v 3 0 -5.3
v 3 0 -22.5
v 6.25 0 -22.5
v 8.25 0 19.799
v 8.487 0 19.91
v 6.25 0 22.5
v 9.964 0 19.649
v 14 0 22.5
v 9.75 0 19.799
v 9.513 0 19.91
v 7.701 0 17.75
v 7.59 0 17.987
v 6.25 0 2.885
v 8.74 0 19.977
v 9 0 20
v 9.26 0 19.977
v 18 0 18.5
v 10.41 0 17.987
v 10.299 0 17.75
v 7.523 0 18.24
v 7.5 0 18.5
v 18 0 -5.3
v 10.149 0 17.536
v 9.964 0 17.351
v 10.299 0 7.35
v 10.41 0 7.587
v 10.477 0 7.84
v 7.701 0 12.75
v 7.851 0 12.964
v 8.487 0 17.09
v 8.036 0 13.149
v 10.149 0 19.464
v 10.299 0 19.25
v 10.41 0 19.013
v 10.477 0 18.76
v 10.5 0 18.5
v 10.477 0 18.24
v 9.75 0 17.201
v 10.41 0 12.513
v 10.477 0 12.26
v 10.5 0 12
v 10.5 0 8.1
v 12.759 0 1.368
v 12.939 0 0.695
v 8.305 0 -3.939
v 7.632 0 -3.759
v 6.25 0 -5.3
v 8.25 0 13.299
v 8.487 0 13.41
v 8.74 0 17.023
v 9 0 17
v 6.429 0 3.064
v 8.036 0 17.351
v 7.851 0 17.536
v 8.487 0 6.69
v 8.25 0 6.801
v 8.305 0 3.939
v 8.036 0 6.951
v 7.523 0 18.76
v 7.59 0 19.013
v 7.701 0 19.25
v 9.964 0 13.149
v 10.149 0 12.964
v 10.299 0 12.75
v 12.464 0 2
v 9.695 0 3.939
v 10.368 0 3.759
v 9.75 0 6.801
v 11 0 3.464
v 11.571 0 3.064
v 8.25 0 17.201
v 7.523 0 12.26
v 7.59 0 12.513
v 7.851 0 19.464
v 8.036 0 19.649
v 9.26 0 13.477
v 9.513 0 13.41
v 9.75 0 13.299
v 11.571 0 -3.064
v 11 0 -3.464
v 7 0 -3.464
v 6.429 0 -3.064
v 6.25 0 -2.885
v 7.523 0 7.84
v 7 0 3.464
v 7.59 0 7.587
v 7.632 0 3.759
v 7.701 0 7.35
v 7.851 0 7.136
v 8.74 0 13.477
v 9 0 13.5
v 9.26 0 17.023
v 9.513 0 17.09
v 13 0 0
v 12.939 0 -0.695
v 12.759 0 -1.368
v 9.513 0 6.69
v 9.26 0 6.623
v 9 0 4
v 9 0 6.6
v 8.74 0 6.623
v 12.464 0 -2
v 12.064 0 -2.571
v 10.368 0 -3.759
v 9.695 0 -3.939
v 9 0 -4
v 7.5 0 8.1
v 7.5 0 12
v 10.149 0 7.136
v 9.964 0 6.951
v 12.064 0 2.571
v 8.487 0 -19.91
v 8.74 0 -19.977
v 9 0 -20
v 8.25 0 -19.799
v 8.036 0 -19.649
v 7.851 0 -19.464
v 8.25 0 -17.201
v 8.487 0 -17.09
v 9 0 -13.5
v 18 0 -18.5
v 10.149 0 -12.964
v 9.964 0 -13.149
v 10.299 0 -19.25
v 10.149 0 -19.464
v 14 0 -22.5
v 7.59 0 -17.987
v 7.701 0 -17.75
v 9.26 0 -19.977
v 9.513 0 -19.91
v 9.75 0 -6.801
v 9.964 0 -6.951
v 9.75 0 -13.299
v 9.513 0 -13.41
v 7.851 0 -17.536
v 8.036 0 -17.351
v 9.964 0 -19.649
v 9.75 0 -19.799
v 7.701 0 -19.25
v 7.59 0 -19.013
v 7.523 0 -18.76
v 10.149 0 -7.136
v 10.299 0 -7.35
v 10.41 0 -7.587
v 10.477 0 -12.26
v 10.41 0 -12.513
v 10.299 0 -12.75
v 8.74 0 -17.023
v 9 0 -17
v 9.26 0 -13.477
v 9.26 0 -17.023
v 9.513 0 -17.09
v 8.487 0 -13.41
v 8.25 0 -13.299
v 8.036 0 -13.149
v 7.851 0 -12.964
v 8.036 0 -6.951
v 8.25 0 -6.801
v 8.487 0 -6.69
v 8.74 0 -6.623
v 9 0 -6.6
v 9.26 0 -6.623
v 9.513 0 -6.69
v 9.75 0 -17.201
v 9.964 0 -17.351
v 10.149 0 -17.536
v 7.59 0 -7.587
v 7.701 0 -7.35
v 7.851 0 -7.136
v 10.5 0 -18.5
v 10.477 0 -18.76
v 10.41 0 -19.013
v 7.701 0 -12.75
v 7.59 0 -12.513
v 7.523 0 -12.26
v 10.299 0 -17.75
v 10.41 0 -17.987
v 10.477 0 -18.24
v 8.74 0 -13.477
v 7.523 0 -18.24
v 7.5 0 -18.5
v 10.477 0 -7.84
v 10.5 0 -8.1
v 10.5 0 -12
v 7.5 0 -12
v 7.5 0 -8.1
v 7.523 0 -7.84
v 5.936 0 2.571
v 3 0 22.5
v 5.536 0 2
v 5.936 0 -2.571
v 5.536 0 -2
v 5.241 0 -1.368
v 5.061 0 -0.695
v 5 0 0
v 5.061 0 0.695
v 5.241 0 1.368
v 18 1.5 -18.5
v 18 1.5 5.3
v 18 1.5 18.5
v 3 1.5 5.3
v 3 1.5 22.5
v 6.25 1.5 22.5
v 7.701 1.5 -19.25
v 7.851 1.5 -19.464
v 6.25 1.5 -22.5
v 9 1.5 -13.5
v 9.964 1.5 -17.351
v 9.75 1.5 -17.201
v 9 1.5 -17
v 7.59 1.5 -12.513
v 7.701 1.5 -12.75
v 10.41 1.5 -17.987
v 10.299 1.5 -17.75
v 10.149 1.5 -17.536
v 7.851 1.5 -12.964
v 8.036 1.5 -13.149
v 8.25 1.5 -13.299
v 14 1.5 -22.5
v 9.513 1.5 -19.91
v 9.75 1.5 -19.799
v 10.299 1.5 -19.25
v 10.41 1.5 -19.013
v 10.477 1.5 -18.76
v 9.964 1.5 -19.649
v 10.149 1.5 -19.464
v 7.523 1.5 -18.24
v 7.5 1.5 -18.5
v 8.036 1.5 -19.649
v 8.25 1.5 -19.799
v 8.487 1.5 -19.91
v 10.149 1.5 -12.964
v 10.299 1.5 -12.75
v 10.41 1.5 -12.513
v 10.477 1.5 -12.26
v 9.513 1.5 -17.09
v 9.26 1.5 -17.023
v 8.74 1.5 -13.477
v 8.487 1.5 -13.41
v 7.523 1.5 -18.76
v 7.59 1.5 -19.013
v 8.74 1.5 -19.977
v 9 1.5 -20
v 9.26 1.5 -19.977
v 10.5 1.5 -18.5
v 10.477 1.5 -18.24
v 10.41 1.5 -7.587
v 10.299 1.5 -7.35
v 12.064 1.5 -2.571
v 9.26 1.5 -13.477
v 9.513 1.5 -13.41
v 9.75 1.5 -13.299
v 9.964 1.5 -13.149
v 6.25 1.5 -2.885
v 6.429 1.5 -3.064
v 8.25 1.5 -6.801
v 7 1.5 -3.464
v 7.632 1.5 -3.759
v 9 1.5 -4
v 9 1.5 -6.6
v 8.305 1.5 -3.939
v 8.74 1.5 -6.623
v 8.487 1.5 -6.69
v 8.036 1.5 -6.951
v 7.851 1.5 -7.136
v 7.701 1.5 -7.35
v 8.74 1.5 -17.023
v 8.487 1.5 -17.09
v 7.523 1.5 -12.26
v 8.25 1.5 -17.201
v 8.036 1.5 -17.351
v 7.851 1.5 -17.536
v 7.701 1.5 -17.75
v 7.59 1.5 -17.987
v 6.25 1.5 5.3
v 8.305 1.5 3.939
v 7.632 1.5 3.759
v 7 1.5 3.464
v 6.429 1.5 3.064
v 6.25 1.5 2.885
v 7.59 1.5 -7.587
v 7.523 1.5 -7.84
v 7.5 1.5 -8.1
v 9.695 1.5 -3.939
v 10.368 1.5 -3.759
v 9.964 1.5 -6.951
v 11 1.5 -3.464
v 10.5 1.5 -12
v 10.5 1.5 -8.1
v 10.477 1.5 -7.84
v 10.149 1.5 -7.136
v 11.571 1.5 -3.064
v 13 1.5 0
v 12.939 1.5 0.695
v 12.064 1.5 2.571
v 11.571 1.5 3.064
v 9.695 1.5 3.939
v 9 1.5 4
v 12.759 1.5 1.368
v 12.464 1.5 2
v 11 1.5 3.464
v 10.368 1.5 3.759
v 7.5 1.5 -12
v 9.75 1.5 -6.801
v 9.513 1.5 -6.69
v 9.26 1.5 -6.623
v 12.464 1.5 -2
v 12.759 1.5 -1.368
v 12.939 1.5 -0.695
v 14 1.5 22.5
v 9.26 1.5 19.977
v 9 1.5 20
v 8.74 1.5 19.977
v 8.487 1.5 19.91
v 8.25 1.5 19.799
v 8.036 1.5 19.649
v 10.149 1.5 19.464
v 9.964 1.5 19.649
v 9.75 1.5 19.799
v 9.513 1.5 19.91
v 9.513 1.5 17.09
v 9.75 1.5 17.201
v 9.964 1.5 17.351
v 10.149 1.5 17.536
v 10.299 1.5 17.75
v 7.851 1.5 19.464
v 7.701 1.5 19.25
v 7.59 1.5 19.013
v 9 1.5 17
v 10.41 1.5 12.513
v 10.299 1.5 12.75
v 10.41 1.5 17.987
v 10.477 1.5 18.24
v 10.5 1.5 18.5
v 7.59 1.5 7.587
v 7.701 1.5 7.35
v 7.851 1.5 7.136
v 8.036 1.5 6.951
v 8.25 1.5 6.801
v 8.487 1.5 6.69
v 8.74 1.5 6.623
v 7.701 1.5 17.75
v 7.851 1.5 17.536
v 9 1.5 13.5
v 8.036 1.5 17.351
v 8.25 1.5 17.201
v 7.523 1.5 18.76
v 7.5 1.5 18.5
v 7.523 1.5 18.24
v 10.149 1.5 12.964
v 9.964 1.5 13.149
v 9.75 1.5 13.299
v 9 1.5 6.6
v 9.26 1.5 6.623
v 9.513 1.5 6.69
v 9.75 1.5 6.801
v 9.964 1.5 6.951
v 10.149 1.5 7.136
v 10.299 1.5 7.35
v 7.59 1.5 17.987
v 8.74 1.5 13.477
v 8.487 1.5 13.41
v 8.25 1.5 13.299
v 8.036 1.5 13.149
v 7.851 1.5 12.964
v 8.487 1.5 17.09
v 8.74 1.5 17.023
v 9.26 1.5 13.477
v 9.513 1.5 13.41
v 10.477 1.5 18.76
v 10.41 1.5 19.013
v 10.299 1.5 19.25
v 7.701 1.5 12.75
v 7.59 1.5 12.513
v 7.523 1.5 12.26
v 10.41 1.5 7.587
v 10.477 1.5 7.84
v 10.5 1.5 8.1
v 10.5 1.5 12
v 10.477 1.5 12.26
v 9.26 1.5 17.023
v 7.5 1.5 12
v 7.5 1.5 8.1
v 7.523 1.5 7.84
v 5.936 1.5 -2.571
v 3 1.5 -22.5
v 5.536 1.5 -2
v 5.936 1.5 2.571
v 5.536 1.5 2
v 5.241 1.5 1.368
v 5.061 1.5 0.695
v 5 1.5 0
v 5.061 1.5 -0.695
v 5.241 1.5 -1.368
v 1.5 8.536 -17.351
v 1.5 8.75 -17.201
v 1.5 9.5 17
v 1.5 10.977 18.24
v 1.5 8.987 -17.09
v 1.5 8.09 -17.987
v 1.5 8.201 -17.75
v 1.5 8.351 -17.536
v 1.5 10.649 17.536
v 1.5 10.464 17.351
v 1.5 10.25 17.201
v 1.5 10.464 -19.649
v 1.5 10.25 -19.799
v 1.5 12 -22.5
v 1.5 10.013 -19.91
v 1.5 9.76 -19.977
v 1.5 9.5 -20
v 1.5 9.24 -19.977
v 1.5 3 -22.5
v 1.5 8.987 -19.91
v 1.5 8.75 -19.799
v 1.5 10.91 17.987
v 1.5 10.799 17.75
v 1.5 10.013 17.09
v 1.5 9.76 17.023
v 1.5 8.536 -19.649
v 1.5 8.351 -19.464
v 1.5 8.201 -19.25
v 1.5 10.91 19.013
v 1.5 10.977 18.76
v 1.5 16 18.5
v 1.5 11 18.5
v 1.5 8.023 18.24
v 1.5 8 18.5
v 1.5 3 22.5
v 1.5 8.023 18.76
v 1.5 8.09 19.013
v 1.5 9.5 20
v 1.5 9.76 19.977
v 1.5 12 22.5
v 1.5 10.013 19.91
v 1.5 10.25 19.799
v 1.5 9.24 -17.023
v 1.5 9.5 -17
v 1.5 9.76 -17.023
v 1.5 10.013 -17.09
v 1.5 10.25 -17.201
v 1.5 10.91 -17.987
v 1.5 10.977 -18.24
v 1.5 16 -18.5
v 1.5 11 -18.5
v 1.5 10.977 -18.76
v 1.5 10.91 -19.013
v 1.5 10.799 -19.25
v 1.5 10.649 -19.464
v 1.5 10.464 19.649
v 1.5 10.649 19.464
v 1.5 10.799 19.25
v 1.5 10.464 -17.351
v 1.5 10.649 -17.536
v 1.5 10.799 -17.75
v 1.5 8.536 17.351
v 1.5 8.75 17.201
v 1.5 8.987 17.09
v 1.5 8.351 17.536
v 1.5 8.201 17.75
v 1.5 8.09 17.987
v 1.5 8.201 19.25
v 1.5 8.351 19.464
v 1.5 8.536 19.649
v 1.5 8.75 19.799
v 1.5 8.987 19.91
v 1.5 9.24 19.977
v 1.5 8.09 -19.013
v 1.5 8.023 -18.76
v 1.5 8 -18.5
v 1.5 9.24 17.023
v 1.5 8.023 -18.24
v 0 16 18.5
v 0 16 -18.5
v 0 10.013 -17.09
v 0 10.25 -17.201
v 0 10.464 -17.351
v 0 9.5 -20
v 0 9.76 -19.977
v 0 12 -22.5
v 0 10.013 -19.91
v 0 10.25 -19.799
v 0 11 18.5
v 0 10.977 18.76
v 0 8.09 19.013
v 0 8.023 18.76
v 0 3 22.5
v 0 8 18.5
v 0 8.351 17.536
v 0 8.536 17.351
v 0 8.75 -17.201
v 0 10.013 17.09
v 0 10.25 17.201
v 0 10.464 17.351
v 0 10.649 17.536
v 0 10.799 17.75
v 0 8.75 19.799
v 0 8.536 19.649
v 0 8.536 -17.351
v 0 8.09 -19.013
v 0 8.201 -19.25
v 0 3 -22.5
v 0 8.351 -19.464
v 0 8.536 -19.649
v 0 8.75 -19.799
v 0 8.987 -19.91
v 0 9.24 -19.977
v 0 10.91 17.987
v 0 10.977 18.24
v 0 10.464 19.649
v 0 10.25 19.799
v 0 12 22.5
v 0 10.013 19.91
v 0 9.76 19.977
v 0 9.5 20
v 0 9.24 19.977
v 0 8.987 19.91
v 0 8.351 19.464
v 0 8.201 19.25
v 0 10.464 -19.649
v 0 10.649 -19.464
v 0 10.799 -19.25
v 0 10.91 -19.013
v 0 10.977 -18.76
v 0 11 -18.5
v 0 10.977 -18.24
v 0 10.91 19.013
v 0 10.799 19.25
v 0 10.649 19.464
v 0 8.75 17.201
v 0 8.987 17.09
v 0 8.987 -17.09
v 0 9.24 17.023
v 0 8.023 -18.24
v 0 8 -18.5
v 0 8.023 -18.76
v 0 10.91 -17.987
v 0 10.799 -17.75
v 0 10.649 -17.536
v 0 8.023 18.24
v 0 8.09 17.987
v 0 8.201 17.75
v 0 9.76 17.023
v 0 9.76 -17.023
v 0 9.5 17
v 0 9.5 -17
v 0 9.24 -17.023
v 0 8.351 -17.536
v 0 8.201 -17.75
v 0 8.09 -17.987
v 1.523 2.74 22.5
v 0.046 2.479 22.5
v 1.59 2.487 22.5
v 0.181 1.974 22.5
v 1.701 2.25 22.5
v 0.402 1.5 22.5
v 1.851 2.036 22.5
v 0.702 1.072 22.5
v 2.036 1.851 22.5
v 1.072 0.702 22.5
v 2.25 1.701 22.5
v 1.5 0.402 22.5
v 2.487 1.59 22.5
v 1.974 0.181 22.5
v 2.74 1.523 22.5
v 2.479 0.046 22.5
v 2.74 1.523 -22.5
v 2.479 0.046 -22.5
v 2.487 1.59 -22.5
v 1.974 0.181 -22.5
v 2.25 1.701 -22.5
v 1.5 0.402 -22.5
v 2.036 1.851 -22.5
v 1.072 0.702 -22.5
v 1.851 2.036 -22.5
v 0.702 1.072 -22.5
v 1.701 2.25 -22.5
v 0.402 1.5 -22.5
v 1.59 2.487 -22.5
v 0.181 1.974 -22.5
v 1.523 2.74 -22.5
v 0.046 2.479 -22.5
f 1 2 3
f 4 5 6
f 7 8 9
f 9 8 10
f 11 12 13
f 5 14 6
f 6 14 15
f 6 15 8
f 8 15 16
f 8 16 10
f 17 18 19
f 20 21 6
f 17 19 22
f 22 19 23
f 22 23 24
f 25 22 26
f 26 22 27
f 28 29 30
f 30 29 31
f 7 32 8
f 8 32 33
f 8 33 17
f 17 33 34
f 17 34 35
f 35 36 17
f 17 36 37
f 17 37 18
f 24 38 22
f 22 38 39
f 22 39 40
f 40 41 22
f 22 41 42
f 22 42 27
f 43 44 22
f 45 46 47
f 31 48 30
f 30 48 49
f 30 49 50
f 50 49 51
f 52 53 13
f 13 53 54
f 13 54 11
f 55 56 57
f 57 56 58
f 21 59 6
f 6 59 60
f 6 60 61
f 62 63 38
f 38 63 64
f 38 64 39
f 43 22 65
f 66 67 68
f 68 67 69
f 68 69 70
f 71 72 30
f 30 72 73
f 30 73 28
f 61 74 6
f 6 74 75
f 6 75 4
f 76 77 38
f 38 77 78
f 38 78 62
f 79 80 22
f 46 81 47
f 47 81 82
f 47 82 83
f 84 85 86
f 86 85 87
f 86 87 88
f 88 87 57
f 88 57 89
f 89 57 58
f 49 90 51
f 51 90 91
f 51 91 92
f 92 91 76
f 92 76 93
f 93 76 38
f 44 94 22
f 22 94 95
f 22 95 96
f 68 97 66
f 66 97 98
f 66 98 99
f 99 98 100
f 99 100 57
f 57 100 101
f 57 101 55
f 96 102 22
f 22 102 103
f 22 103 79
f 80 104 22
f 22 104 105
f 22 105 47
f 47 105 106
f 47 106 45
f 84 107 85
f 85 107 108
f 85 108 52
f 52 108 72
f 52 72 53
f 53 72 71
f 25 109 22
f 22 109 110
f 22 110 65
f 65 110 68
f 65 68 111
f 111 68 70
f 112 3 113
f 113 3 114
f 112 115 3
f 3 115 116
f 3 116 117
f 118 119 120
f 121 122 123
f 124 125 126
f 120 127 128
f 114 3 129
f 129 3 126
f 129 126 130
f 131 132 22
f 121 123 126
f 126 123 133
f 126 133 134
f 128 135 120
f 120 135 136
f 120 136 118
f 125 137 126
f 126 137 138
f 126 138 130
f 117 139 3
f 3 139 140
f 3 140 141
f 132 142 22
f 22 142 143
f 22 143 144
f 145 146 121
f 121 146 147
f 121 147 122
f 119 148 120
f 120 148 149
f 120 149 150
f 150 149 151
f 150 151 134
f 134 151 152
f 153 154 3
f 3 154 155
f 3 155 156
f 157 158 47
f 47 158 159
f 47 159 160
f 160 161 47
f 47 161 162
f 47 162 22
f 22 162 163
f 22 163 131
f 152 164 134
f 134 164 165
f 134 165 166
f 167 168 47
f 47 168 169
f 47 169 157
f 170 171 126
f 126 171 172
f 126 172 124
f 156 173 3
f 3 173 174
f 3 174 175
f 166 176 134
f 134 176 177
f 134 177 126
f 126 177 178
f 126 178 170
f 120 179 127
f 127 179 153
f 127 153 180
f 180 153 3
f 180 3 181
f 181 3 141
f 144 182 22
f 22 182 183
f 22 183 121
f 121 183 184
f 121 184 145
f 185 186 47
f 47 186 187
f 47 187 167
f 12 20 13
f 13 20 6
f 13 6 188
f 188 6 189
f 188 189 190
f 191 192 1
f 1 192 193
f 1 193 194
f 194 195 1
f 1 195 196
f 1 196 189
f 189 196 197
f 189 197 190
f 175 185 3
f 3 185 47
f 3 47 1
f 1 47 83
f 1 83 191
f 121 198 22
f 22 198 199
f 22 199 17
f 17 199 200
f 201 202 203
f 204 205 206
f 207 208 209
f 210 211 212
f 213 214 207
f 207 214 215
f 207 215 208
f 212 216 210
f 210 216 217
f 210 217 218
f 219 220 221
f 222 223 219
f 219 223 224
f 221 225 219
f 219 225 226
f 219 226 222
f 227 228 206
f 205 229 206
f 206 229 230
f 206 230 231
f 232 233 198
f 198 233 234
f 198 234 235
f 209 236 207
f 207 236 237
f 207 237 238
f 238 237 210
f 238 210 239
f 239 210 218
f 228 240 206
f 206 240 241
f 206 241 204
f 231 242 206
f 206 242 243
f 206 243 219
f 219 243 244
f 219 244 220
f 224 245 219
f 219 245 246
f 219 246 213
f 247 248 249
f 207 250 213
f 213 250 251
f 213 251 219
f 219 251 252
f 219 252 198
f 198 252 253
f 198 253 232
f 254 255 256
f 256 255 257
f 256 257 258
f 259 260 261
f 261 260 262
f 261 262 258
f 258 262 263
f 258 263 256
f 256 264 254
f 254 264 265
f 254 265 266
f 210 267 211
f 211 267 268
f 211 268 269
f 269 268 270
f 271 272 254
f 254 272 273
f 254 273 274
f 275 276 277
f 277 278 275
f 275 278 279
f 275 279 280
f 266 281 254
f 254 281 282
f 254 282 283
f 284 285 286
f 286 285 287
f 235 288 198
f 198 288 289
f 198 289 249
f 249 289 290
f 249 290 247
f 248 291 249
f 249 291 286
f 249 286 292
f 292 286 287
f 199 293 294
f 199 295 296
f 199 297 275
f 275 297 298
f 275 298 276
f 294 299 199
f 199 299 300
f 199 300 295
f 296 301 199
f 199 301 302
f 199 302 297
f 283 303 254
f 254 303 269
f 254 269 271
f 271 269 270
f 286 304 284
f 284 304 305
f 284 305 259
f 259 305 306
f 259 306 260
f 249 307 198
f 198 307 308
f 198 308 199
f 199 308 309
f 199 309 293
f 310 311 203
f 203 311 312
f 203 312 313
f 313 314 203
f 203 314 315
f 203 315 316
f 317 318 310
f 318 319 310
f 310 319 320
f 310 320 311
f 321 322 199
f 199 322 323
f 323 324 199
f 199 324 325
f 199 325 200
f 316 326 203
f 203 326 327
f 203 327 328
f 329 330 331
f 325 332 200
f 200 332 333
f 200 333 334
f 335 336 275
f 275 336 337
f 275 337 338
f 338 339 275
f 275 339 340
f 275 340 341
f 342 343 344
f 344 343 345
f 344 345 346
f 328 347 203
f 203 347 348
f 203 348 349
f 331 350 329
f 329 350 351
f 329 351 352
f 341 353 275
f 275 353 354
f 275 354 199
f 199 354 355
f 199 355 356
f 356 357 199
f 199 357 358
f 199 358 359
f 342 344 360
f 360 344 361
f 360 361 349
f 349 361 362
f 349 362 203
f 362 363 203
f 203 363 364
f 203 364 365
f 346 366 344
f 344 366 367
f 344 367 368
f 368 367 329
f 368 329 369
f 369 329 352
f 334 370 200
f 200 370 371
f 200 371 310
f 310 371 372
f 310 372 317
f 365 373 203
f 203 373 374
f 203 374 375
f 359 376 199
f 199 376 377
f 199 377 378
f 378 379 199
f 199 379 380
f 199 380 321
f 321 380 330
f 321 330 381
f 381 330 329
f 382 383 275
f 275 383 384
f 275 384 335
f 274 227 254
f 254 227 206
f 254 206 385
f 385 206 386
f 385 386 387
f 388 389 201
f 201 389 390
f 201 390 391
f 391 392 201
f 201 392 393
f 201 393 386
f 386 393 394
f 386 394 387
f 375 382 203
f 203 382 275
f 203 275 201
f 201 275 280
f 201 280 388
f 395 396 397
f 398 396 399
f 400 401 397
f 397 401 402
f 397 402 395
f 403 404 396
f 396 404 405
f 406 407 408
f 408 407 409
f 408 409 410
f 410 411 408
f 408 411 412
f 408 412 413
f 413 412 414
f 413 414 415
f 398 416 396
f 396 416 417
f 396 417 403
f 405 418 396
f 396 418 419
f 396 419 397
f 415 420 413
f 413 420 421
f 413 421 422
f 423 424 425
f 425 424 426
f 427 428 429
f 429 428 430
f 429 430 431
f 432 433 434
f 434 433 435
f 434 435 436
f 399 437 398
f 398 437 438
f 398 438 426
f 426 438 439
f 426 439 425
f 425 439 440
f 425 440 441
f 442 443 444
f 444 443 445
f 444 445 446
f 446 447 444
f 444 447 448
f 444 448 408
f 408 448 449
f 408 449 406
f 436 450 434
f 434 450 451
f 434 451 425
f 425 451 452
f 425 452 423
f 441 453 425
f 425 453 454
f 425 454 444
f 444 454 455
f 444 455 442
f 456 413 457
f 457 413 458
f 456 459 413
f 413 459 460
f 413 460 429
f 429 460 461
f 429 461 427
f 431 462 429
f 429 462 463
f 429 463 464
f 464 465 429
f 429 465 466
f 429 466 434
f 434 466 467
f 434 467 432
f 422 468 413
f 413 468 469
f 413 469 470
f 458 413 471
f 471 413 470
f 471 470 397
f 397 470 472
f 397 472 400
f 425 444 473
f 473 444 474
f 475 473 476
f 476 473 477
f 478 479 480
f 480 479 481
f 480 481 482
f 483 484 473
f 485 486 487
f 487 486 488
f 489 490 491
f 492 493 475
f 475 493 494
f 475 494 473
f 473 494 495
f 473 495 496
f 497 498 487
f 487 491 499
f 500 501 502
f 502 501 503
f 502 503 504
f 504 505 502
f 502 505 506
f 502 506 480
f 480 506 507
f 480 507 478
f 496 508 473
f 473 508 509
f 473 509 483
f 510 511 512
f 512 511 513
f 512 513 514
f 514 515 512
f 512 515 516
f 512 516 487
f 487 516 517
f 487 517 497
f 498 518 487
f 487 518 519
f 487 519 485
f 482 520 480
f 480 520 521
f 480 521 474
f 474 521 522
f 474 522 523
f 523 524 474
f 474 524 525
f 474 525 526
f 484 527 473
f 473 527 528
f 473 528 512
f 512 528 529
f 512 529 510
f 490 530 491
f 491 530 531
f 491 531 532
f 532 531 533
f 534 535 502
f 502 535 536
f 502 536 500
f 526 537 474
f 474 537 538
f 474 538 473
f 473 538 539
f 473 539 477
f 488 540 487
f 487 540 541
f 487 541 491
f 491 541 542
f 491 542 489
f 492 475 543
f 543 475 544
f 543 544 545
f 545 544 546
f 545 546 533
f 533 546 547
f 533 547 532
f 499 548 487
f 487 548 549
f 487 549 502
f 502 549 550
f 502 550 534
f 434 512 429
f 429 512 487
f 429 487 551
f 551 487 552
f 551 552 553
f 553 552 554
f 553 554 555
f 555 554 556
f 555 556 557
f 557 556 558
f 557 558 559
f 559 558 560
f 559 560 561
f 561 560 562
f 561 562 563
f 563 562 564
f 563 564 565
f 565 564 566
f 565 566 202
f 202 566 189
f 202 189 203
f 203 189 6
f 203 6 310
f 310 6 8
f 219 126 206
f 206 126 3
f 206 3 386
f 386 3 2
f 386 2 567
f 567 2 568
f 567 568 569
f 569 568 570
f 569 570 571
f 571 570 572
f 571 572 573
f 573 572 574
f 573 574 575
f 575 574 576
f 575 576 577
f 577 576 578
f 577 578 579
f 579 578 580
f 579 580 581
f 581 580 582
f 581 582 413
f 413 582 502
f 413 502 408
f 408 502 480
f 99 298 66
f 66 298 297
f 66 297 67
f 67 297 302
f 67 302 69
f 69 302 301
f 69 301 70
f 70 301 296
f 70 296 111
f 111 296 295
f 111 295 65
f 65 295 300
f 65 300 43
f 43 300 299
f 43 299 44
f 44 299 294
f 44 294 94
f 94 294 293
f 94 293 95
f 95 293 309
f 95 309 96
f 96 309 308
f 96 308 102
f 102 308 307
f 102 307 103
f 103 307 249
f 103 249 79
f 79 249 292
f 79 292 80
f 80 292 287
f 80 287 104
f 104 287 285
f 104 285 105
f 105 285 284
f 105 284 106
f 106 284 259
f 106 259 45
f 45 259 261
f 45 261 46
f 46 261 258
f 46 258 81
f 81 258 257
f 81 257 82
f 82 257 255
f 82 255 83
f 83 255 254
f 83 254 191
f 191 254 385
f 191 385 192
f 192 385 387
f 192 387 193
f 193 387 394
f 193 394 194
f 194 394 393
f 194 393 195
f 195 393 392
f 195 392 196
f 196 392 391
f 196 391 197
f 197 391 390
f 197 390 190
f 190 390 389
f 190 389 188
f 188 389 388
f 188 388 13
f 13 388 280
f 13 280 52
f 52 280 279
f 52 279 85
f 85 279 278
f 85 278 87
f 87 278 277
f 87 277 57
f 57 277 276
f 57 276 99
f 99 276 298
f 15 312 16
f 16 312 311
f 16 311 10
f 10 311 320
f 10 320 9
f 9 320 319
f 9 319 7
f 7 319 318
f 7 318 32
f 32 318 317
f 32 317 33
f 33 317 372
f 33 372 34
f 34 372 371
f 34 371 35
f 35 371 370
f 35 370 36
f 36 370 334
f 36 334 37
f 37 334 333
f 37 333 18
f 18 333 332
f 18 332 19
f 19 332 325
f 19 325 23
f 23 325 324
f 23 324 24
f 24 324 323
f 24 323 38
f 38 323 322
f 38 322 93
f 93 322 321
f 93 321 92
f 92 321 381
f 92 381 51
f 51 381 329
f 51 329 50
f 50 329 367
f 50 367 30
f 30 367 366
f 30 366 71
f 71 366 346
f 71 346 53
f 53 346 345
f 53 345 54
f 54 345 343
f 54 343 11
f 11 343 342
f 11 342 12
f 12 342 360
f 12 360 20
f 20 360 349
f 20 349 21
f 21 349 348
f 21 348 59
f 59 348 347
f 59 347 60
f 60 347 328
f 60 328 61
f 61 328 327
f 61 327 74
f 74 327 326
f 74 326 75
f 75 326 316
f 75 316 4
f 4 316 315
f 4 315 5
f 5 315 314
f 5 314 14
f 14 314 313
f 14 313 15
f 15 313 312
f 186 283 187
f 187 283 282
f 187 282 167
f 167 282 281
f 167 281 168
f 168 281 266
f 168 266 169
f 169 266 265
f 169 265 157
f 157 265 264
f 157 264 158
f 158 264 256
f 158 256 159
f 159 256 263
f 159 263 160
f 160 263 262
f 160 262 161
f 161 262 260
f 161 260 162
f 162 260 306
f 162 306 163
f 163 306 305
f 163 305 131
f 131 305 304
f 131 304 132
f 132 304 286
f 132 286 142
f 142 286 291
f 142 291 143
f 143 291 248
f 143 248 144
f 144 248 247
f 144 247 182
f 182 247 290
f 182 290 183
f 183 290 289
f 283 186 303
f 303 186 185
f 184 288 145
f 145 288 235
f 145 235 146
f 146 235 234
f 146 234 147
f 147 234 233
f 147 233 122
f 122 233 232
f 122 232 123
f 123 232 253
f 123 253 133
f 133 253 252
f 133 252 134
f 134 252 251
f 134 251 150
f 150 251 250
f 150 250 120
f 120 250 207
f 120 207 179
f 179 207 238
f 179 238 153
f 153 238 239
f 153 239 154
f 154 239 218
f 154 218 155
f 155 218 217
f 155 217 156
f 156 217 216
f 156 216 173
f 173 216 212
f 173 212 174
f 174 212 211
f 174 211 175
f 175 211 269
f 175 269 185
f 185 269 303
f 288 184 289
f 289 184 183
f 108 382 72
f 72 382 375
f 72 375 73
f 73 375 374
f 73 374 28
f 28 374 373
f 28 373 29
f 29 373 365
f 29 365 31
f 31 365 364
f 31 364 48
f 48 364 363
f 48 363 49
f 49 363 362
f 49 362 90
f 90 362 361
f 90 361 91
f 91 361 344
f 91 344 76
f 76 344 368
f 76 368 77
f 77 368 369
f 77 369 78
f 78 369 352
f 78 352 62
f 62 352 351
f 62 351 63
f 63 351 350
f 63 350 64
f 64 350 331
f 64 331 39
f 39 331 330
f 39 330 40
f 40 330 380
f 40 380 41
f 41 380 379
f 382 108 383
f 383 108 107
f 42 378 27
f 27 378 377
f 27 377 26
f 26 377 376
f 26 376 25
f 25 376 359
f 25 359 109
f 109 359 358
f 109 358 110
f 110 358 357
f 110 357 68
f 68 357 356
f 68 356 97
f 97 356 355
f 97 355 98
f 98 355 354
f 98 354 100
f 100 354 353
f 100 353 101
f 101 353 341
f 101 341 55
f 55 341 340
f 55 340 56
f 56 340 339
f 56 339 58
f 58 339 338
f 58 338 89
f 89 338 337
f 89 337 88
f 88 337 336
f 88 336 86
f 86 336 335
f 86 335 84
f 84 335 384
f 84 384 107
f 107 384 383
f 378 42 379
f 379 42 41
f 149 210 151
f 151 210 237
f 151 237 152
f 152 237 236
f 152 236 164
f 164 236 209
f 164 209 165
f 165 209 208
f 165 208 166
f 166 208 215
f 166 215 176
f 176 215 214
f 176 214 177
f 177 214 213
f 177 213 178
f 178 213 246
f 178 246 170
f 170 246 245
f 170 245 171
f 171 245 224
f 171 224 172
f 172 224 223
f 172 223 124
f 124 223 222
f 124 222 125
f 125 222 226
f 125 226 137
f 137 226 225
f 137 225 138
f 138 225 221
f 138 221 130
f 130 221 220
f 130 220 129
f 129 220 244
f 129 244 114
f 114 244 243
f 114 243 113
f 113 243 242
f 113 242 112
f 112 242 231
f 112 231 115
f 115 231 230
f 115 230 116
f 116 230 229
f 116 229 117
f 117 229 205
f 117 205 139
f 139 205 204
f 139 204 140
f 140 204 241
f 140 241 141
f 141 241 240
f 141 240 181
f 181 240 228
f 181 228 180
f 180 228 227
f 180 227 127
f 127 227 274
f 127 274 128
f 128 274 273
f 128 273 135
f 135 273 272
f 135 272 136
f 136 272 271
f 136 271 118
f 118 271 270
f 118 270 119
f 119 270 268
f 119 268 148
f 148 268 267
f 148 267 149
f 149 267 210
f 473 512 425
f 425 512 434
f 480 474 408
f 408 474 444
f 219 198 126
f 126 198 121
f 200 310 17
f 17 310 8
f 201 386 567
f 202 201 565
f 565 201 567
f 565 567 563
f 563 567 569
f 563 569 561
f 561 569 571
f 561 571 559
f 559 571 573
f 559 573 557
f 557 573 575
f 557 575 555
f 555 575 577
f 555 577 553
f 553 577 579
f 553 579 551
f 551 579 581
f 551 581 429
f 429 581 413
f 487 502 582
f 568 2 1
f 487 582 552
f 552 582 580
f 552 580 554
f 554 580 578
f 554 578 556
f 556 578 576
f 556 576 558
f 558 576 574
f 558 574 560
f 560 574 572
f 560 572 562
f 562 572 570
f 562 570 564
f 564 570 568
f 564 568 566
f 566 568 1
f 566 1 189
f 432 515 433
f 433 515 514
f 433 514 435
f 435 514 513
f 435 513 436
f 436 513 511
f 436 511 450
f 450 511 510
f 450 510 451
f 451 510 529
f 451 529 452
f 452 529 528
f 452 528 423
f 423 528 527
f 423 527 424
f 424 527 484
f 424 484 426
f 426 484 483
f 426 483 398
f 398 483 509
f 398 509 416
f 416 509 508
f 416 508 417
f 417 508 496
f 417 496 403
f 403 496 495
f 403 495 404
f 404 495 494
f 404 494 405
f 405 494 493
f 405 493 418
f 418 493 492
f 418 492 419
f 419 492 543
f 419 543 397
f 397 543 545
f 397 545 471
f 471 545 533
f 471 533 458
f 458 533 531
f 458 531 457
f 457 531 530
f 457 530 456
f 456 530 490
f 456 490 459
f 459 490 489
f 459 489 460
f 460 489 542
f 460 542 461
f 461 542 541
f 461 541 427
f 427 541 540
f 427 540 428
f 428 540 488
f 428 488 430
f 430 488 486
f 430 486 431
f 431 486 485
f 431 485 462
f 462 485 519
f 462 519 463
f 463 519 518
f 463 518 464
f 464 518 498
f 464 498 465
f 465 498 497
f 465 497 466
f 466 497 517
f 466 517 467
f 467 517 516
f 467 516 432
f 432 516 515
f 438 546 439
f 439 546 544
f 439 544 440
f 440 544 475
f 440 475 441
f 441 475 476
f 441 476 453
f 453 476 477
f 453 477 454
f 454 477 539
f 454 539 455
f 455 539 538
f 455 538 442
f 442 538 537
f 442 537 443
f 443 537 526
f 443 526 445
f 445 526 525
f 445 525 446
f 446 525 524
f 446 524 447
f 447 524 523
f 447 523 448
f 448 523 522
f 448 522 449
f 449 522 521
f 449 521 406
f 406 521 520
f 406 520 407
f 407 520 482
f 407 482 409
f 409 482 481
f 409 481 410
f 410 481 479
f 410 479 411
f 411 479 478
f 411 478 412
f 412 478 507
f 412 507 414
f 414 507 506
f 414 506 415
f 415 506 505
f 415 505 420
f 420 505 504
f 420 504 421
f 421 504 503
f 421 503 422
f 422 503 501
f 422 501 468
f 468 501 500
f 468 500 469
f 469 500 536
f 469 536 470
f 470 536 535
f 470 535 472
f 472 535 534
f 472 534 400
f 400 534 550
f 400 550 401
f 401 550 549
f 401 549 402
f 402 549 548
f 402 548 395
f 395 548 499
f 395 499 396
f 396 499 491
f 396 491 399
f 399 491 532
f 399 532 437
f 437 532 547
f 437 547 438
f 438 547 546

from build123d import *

# Parameters (mm, degrees)
EXTRUDE_1_DEPTH     = 22.5
SKETCH_2_R          = 4
SKETCH_2_R_2        = 1.5
CUT_EXTRUDE_1_DEPTH = 45.2
CHAMFER_1_SIZE      = 4
FILLET_1_R          = 1.5
FILLET_2_R          = 3
SKETCH_4_R          = 1.5
CUT_EXTRUDE_2_DEPTH = 19


with BuildPart() as part:
    # Эскиз1 → Бобышка-Вытянуть1 (new body, symmetric)
    with BuildSketch(Plane.XY):
        Polygon((0, 0), (0, 16), (1.5, 16), (1.5, 1.5), (18, 1.5), (18, 0), align=None)
    extrude(amount=EXTRUDE_1_DEPTH, both=True)

    # Эскиз2 → Вырез-Вытянуть1 (cut)
    with BuildSketch(Plane(origin=(0, 1.5, 0), x_dir=(1, 0, 0), z_dir=(0, 1, 0))):
        with Locations((9, 0)):
            Circle(SKETCH_2_R)
        with Locations((9, 18.5)):
            Circle(SKETCH_2_R_2)
        with Locations((9, -18.5)):
            Circle(SKETCH_2_R_2)
        with BuildLine():
            Line((7.5, 8.1), (7.5, 12))
            ThreePointArc((7.5, 12), (9, 13.5), (10.5, 12))
            Line((10.5, 12), (10.5, 8.1))
            ThreePointArc((10.5, 8.1), (9, 6.6), (7.5, 8.1))
        make_face()
        with BuildLine():
            Line((10.5, -12), (10.5, -8.1))
            ThreePointArc((10.5, -8.1), (9, -6.6), (7.5, -8.1))
            Line((7.5, -8.1), (7.5, -12))
            ThreePointArc((7.5, -12), (9, -13.5), (10.5, -12))
        make_face()
    extrude(amount=-CUT_EXTRUDE_1_DEPTH, mode=Mode.SUBTRACT)

    # Фаска1
    chamfer_1_edges = [part.edges().sort_by_distance(p)[0] for p in [
        (0.75, 16, 22.5),
        (0.75, 16, -22.5),
        (18, 0.75, 22.5),
        (18, 0.75, -22.5),
    ]]
    chamfer(chamfer_1_edges, length=CHAMFER_1_SIZE)

    # Скругление1
    fillet_1_edges = [part.edges().sort_by_distance(p)[0] for p in [
        (1.5, 1.5, 0),
    ]]
    fillet(fillet_1_edges, radius=FILLET_1_R)

    # Скругление2
    fillet_2_edges = [part.edges().sort_by_distance(p)[0] for p in [
        (0, 0, 0),
    ]]
    fillet(fillet_2_edges, radius=FILLET_2_R)

    # Эскиз4 → Вырез-Вытянуть2 (cut, through all)
    with BuildSketch(Plane.ZY):
        with Locations((-18.5, 9.5)):
            Circle(SKETCH_4_R)
        with Locations((18.5, 9.5)):
            Circle(SKETCH_4_R)
    extrude(amount=-CUT_EXTRUDE_2_DEPTH, mode=Mode.SUBTRACT)


solid = part.part
